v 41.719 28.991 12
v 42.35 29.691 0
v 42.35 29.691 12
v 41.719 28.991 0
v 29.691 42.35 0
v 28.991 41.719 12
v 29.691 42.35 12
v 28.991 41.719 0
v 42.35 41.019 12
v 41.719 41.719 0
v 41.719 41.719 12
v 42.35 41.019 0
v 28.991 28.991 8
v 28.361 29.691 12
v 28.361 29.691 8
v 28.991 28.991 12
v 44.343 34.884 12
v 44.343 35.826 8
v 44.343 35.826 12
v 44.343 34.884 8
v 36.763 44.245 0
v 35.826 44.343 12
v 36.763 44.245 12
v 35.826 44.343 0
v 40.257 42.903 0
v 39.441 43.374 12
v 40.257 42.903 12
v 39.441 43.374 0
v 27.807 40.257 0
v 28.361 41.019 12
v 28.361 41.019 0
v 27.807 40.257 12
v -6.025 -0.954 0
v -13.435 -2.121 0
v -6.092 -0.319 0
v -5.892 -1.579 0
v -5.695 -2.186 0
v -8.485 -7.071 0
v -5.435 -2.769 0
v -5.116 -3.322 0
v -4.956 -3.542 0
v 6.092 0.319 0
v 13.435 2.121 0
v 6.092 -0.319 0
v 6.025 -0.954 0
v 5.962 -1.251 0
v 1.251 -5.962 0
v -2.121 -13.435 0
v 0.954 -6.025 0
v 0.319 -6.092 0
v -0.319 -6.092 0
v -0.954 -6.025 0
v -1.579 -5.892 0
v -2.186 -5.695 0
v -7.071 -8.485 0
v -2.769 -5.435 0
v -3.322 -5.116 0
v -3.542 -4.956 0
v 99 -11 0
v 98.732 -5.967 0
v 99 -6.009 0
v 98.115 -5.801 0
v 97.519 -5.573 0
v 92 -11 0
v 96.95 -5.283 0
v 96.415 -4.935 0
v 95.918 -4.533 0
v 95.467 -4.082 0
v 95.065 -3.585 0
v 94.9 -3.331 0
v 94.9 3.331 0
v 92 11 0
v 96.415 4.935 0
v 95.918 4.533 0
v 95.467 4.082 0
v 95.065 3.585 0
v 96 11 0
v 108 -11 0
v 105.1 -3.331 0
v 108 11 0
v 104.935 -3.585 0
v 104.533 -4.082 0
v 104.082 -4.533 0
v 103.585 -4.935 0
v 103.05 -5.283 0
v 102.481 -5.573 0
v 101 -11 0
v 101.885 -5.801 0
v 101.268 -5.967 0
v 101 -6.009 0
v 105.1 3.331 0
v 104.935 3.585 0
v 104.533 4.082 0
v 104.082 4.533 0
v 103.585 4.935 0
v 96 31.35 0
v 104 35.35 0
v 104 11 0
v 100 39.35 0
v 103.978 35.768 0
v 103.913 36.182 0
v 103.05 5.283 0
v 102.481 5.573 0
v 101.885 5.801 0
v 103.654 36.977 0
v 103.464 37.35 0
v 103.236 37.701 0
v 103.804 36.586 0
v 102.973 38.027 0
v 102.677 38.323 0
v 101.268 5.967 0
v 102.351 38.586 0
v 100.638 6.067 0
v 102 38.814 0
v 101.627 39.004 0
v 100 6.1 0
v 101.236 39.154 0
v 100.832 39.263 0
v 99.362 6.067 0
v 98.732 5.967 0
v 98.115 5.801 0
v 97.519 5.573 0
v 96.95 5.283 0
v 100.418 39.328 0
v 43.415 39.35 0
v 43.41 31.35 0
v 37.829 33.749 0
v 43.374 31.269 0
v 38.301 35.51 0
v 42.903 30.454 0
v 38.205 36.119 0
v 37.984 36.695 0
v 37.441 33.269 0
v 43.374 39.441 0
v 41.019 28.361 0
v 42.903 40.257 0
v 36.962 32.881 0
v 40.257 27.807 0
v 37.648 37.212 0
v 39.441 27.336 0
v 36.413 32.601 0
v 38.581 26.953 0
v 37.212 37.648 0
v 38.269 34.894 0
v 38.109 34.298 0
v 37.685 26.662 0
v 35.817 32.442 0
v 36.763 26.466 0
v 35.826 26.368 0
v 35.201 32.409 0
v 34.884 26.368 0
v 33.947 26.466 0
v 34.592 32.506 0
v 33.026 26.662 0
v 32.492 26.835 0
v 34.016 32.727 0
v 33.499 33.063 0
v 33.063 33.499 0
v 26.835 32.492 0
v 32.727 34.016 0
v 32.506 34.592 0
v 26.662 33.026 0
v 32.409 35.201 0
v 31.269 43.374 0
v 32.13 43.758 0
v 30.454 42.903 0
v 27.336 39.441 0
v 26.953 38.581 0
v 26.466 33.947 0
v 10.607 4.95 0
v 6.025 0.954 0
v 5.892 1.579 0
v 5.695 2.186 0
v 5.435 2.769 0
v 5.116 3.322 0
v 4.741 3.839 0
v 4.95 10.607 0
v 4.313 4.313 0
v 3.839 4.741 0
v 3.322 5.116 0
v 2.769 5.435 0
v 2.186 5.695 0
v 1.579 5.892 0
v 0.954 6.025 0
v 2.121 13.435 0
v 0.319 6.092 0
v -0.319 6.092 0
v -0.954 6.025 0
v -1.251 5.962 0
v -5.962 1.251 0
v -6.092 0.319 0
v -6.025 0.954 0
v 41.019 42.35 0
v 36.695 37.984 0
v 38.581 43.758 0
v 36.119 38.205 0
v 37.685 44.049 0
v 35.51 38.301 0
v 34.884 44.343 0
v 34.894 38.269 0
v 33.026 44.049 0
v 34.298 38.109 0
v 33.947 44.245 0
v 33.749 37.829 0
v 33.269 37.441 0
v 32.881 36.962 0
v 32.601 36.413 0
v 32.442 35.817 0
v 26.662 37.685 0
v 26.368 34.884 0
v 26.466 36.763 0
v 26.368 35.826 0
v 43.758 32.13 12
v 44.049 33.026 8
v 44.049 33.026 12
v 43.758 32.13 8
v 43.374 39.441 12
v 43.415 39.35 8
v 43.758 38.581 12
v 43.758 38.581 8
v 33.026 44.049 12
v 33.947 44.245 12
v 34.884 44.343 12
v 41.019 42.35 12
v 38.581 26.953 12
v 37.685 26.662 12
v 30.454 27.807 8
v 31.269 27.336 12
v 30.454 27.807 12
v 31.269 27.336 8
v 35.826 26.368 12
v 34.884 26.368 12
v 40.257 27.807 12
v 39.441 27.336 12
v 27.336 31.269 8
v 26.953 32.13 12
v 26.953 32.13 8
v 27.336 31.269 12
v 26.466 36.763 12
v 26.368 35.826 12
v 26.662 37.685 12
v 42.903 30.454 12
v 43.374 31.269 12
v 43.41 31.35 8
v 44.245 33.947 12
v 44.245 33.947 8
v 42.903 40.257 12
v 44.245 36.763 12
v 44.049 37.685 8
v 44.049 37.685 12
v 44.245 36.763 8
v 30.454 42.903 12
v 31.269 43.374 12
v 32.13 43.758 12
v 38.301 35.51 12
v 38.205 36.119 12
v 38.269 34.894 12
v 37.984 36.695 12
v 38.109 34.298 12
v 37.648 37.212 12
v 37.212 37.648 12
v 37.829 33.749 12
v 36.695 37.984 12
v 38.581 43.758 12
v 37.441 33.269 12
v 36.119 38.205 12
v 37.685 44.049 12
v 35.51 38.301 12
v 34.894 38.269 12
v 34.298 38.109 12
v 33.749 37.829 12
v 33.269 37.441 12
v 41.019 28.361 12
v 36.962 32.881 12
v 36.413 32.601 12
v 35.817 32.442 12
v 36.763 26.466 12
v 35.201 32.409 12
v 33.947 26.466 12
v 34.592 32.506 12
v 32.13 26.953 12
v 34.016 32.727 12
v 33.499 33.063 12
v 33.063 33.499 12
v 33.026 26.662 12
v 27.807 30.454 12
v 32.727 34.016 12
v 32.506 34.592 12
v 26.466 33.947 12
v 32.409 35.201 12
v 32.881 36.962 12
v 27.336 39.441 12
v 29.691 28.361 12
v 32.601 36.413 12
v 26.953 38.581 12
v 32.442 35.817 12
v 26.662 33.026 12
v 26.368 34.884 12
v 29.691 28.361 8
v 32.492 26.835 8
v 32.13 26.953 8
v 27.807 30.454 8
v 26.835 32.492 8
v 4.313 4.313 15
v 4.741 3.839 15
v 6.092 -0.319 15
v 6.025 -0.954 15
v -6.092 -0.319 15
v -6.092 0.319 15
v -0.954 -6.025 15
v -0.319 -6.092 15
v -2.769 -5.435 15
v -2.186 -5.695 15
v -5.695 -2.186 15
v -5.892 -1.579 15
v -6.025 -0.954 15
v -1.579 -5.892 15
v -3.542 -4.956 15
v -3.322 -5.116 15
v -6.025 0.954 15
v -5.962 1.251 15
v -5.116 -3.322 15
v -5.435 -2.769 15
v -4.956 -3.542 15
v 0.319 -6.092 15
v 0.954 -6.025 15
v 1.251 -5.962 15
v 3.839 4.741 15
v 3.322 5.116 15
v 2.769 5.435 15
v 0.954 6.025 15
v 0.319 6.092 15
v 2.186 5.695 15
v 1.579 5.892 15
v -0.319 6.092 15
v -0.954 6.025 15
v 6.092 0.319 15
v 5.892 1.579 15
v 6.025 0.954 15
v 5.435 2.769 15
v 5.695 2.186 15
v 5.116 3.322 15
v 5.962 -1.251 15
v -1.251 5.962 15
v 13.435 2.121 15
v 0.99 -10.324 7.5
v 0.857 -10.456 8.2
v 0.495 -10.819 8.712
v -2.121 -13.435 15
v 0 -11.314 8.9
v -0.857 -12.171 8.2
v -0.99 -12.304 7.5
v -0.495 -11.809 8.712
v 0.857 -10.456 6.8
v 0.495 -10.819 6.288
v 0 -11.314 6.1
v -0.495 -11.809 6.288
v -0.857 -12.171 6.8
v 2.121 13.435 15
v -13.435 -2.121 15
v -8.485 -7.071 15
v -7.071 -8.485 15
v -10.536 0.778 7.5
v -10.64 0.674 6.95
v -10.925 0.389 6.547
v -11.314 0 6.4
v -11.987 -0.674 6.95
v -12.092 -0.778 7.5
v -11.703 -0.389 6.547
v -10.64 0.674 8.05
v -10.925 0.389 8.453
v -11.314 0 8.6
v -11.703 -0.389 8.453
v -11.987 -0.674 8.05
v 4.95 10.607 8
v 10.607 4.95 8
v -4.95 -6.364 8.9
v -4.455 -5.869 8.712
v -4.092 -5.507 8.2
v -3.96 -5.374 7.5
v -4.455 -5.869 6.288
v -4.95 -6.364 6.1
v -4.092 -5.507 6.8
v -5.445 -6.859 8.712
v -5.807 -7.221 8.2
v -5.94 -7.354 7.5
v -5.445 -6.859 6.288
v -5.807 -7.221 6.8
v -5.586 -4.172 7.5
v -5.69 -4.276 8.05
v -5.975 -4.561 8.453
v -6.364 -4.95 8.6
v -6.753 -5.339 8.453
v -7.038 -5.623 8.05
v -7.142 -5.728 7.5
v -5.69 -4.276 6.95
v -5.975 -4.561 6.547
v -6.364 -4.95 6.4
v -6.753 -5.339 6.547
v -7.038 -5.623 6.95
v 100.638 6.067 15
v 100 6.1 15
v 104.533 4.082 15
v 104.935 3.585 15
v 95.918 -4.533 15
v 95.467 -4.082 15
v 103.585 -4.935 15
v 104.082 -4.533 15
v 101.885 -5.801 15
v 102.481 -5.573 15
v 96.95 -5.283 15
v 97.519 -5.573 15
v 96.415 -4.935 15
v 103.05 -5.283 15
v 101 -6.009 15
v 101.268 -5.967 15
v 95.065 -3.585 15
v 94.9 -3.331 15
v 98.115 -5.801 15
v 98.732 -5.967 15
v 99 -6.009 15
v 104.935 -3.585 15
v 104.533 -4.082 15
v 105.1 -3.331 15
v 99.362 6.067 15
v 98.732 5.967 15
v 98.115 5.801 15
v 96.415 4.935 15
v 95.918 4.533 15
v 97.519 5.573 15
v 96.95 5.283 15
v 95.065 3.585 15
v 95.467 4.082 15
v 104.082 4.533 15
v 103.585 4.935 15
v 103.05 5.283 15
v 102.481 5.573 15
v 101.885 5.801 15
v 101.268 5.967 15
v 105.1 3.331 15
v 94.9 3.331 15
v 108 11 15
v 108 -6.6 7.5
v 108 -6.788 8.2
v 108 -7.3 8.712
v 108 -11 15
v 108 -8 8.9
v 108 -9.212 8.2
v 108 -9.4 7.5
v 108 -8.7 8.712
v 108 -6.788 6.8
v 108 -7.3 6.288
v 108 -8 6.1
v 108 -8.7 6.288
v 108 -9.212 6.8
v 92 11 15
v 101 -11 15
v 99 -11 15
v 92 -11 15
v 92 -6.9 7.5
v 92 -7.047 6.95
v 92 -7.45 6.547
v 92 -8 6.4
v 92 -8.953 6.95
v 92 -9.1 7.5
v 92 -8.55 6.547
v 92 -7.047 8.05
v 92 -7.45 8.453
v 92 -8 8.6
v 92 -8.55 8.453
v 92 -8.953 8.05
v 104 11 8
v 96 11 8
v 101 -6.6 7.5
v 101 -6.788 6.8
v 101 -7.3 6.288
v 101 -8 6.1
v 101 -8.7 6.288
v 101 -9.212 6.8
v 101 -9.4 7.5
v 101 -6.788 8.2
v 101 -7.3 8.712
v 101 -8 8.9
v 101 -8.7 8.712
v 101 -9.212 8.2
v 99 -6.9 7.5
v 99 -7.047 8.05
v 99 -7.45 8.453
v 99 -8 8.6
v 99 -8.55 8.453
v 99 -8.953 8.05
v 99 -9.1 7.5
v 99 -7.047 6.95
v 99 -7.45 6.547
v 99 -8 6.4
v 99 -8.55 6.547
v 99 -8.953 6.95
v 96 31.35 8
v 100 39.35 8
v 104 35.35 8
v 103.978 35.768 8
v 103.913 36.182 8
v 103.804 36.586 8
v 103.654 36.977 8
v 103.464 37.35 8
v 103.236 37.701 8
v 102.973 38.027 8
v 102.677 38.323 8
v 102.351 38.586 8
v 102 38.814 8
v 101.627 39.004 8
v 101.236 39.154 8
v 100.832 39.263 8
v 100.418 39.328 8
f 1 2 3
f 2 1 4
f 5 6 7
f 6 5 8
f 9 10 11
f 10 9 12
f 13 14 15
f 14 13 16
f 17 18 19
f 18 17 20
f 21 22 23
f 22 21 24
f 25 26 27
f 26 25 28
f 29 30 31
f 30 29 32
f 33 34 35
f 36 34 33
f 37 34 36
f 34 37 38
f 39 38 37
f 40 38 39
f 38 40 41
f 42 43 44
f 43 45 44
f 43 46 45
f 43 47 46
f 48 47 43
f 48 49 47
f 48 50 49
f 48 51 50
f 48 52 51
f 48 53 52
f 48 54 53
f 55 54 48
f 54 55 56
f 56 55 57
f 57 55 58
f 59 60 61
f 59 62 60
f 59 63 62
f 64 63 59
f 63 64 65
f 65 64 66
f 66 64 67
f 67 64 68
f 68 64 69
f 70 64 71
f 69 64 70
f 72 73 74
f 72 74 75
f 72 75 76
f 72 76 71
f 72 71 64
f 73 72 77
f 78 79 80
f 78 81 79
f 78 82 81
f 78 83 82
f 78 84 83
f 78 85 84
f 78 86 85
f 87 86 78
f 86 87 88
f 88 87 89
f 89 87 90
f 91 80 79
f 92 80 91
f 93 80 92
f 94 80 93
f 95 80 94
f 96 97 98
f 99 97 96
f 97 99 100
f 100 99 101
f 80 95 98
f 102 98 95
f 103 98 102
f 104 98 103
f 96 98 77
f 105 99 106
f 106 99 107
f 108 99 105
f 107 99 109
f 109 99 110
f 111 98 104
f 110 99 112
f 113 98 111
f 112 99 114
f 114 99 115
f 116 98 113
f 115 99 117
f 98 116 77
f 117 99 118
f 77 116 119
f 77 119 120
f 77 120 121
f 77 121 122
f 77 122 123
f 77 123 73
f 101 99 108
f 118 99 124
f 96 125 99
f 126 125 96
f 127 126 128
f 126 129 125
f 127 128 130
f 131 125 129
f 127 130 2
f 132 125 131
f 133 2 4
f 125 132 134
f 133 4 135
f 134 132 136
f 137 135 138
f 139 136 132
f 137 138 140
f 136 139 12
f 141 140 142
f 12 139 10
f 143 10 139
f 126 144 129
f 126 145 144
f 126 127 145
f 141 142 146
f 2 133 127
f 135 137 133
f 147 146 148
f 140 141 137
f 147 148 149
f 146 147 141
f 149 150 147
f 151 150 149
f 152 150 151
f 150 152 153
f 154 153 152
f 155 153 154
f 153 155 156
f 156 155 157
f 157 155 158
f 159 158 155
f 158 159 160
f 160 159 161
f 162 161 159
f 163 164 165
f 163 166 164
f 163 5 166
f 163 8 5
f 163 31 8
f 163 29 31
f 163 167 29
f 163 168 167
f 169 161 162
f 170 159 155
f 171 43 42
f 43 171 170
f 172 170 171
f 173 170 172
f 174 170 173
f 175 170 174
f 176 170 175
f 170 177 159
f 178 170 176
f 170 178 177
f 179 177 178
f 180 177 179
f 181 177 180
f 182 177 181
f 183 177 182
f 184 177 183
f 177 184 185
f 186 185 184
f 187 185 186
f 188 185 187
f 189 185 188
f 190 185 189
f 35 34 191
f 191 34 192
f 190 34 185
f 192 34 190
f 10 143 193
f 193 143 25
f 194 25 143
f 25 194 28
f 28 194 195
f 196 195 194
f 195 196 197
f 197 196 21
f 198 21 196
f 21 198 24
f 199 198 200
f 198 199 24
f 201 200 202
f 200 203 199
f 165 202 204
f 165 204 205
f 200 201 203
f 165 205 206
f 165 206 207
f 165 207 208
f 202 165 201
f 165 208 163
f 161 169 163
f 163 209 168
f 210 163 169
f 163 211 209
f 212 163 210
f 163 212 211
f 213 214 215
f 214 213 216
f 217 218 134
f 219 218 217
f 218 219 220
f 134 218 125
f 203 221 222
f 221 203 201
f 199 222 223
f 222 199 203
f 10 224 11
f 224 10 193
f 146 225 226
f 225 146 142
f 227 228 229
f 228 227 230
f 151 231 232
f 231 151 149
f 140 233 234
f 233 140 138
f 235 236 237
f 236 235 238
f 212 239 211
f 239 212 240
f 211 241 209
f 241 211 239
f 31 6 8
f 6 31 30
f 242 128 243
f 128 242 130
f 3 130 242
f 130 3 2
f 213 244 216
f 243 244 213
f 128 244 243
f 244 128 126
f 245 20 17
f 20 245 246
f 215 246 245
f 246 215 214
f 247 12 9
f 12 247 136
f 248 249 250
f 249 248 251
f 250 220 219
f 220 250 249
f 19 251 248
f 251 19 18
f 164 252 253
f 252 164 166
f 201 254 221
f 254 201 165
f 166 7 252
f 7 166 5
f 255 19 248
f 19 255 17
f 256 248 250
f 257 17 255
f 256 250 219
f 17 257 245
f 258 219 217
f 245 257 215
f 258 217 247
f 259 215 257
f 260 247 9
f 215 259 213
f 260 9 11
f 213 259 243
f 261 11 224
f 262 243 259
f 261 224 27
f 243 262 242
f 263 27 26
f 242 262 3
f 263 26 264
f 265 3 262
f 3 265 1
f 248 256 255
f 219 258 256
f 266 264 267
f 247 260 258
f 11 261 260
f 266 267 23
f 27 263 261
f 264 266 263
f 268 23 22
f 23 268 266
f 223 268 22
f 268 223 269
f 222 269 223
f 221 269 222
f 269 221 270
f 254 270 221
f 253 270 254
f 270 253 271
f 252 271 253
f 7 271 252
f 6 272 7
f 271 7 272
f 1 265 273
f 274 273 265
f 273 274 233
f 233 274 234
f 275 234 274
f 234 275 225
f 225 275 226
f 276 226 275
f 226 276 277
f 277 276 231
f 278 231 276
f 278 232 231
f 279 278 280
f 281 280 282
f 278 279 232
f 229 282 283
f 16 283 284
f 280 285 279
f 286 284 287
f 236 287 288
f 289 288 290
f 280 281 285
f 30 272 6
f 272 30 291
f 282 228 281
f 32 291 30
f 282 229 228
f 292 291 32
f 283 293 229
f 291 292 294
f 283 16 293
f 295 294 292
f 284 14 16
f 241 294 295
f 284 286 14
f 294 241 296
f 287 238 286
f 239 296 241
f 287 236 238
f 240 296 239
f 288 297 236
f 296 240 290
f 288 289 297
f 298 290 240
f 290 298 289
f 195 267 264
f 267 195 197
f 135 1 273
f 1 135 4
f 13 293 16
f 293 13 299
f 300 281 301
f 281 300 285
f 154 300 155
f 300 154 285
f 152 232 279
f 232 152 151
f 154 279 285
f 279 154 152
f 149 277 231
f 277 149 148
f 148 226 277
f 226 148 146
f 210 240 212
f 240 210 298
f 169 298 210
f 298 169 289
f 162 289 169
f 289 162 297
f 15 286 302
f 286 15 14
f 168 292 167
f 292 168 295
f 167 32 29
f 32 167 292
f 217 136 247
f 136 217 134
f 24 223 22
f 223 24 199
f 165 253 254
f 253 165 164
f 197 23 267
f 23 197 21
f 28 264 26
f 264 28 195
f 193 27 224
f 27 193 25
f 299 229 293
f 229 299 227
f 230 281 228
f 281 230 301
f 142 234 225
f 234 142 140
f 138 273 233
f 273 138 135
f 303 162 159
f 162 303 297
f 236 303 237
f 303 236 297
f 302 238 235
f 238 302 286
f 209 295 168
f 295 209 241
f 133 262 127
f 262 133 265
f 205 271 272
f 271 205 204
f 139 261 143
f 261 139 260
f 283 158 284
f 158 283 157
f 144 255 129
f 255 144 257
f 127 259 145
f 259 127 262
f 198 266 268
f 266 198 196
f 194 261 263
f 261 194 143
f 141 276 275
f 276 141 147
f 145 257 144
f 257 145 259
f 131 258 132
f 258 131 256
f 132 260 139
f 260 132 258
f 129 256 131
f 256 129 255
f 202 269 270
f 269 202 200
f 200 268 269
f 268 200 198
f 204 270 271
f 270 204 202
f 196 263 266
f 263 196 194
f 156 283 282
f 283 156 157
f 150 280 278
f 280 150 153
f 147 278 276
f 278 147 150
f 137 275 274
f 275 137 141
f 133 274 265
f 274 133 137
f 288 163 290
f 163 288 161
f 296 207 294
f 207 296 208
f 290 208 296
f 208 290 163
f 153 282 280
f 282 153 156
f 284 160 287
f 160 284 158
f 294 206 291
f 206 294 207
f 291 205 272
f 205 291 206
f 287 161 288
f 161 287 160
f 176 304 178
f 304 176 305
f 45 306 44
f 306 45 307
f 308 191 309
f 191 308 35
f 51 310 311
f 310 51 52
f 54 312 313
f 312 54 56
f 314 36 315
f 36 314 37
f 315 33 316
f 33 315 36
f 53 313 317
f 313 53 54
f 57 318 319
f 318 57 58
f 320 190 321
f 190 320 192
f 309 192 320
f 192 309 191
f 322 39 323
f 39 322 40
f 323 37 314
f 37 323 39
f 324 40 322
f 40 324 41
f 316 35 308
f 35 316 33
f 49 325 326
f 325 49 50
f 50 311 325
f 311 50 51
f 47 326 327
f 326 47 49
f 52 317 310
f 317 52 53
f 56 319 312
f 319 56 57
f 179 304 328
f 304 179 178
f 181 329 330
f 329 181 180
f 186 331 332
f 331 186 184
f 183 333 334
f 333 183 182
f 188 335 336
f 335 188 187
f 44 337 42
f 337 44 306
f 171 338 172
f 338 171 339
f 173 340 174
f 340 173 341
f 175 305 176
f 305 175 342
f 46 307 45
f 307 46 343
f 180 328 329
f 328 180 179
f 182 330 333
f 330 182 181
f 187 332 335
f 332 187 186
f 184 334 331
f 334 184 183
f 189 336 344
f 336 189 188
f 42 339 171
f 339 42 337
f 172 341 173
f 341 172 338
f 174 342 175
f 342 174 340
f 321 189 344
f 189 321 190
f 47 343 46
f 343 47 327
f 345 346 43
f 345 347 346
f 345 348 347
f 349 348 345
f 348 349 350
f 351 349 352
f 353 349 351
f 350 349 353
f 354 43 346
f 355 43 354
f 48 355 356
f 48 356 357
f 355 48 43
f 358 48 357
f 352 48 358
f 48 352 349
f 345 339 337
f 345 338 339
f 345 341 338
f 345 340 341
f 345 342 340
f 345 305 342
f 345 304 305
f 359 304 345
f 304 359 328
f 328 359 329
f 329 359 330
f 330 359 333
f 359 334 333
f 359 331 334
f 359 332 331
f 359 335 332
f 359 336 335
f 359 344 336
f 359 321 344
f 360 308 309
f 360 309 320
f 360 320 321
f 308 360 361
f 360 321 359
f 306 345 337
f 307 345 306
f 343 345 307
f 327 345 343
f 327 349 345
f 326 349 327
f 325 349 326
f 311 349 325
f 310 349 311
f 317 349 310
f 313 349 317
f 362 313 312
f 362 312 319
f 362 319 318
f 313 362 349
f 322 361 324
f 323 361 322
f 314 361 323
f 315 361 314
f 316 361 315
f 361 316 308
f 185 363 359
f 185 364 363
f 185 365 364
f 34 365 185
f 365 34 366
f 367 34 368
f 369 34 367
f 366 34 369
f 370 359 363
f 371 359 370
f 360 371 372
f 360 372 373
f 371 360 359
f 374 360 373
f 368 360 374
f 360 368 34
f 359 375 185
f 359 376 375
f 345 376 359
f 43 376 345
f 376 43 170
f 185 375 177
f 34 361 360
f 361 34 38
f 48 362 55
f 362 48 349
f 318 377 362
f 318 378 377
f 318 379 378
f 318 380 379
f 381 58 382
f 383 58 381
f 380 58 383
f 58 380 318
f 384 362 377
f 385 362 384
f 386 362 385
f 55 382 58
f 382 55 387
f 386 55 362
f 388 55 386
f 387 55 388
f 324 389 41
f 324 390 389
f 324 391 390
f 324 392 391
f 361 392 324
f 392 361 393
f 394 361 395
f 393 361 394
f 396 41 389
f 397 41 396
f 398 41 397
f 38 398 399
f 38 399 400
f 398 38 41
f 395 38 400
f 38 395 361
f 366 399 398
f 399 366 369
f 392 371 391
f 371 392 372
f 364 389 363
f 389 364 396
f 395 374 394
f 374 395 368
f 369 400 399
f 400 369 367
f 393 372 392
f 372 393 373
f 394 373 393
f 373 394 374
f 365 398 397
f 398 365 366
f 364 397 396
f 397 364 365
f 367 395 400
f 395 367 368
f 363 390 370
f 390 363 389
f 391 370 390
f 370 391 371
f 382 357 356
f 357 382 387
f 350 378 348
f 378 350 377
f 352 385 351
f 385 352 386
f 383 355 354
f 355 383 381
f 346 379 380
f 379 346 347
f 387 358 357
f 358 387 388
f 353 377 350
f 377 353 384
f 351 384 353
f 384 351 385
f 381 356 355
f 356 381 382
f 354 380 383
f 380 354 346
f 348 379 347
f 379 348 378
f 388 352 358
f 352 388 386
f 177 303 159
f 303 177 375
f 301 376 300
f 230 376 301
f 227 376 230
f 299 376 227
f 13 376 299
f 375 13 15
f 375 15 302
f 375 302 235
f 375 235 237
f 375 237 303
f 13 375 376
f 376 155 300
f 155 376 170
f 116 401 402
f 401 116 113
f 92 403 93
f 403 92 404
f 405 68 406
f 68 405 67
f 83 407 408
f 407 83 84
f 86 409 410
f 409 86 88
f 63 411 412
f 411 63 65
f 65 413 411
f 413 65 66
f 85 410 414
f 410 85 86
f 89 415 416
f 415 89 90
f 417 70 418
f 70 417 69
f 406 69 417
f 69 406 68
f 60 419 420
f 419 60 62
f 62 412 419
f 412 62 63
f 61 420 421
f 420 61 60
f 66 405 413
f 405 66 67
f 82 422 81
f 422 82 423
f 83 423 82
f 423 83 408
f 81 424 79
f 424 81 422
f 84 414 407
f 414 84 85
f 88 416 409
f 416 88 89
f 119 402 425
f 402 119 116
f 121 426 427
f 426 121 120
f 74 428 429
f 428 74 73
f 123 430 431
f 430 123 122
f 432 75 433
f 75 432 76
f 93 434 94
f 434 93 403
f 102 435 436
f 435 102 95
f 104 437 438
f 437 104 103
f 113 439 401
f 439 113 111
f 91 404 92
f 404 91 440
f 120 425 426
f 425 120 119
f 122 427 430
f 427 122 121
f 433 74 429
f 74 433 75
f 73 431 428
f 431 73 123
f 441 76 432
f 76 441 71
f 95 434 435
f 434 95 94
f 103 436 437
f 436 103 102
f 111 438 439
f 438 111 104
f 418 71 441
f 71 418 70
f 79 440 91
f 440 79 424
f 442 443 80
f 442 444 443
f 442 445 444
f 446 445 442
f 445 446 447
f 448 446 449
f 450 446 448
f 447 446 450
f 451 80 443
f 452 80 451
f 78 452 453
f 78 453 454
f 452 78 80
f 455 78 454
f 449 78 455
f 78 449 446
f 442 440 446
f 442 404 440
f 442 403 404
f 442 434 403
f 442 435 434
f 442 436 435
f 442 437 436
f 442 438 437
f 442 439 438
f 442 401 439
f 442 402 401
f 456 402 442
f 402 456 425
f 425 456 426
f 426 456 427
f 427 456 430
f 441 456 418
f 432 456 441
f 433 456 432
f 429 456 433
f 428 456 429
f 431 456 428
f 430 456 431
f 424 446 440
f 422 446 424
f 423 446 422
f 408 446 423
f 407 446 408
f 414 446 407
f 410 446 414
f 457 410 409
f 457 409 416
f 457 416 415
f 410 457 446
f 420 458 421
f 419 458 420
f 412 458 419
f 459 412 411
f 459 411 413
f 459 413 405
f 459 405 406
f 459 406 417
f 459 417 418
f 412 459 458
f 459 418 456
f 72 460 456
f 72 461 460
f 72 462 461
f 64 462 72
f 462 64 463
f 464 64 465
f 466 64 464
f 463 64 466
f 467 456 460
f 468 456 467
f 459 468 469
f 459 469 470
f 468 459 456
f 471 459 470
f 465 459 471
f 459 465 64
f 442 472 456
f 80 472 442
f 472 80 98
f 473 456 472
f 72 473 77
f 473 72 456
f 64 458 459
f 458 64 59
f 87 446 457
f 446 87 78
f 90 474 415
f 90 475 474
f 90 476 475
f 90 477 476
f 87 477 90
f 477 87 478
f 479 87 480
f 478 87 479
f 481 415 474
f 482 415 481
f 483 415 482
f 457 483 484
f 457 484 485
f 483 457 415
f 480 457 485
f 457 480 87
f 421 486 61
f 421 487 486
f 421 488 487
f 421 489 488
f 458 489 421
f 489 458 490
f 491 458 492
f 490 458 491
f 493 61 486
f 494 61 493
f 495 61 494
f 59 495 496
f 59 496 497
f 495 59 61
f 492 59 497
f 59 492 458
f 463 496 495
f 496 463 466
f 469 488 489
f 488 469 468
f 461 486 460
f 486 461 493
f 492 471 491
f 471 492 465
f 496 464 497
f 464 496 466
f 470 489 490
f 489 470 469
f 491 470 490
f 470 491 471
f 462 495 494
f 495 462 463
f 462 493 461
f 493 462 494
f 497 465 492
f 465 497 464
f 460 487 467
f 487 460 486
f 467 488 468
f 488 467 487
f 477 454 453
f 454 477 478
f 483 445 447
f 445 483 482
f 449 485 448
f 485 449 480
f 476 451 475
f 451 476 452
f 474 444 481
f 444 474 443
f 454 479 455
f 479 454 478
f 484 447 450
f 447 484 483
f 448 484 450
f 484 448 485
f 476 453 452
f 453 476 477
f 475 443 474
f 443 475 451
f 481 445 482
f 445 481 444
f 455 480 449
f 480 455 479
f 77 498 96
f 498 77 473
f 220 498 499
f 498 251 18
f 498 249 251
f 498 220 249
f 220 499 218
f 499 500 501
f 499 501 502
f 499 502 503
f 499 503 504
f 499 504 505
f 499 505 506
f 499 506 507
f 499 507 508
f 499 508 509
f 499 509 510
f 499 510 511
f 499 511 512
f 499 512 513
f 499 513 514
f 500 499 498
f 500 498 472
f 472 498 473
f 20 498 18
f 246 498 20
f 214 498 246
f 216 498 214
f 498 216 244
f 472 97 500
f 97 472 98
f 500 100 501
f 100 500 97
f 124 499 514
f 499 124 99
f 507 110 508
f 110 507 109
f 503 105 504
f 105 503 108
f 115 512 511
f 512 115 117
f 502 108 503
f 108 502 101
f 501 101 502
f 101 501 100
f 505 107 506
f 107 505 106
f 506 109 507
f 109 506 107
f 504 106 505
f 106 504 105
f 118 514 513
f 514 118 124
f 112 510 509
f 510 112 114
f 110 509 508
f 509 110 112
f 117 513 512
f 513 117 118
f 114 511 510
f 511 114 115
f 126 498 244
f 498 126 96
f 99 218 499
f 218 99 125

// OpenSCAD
translate([43.35,31.35,0])cube([56.65,8,8]);
translate([100,35.35,0])
cylinder(d=8,h=8,$fn=60);


rotate([0,0,-45])
{
translate([0,50,0])
difference(){
cylinder(d=18,h=12,$fn=60);
translate([0,0,-1])cylinder(d=5.9,h=20,$fn=30);
}
translate([-4,10,0])cube([8,35,8]);
rotate([0,0,180])wheel_bracket();
}

translate([100,0,0])
{
translate([-4,10,0])cube([8,25.35,8]);
rotate([0,0,180])wheel_bracket();
}


module wheel_bracket(){
    difference(){
translate([-8,-11,0])cube([16,22,15]);
difference(){
    translate([0,0,-1])cylinder(d=12.2,h=25,$fn=60);
    translate([6.1,0,-1])cube([2,16,40],center=true);
    translate([-6.1,0,-1])cube([2,16,40],center=true);
}
translate([-1,0,-1])cube([2,22,25]);
translate([-9,8,7.5])rotate([0,90,0])
cylinder(d=2.2,h=21,$fn=12);
translate([-9,8,7.5])rotate([0,90,0])
cylinder(d=2.8,h=10,$fn=12);
}
}
